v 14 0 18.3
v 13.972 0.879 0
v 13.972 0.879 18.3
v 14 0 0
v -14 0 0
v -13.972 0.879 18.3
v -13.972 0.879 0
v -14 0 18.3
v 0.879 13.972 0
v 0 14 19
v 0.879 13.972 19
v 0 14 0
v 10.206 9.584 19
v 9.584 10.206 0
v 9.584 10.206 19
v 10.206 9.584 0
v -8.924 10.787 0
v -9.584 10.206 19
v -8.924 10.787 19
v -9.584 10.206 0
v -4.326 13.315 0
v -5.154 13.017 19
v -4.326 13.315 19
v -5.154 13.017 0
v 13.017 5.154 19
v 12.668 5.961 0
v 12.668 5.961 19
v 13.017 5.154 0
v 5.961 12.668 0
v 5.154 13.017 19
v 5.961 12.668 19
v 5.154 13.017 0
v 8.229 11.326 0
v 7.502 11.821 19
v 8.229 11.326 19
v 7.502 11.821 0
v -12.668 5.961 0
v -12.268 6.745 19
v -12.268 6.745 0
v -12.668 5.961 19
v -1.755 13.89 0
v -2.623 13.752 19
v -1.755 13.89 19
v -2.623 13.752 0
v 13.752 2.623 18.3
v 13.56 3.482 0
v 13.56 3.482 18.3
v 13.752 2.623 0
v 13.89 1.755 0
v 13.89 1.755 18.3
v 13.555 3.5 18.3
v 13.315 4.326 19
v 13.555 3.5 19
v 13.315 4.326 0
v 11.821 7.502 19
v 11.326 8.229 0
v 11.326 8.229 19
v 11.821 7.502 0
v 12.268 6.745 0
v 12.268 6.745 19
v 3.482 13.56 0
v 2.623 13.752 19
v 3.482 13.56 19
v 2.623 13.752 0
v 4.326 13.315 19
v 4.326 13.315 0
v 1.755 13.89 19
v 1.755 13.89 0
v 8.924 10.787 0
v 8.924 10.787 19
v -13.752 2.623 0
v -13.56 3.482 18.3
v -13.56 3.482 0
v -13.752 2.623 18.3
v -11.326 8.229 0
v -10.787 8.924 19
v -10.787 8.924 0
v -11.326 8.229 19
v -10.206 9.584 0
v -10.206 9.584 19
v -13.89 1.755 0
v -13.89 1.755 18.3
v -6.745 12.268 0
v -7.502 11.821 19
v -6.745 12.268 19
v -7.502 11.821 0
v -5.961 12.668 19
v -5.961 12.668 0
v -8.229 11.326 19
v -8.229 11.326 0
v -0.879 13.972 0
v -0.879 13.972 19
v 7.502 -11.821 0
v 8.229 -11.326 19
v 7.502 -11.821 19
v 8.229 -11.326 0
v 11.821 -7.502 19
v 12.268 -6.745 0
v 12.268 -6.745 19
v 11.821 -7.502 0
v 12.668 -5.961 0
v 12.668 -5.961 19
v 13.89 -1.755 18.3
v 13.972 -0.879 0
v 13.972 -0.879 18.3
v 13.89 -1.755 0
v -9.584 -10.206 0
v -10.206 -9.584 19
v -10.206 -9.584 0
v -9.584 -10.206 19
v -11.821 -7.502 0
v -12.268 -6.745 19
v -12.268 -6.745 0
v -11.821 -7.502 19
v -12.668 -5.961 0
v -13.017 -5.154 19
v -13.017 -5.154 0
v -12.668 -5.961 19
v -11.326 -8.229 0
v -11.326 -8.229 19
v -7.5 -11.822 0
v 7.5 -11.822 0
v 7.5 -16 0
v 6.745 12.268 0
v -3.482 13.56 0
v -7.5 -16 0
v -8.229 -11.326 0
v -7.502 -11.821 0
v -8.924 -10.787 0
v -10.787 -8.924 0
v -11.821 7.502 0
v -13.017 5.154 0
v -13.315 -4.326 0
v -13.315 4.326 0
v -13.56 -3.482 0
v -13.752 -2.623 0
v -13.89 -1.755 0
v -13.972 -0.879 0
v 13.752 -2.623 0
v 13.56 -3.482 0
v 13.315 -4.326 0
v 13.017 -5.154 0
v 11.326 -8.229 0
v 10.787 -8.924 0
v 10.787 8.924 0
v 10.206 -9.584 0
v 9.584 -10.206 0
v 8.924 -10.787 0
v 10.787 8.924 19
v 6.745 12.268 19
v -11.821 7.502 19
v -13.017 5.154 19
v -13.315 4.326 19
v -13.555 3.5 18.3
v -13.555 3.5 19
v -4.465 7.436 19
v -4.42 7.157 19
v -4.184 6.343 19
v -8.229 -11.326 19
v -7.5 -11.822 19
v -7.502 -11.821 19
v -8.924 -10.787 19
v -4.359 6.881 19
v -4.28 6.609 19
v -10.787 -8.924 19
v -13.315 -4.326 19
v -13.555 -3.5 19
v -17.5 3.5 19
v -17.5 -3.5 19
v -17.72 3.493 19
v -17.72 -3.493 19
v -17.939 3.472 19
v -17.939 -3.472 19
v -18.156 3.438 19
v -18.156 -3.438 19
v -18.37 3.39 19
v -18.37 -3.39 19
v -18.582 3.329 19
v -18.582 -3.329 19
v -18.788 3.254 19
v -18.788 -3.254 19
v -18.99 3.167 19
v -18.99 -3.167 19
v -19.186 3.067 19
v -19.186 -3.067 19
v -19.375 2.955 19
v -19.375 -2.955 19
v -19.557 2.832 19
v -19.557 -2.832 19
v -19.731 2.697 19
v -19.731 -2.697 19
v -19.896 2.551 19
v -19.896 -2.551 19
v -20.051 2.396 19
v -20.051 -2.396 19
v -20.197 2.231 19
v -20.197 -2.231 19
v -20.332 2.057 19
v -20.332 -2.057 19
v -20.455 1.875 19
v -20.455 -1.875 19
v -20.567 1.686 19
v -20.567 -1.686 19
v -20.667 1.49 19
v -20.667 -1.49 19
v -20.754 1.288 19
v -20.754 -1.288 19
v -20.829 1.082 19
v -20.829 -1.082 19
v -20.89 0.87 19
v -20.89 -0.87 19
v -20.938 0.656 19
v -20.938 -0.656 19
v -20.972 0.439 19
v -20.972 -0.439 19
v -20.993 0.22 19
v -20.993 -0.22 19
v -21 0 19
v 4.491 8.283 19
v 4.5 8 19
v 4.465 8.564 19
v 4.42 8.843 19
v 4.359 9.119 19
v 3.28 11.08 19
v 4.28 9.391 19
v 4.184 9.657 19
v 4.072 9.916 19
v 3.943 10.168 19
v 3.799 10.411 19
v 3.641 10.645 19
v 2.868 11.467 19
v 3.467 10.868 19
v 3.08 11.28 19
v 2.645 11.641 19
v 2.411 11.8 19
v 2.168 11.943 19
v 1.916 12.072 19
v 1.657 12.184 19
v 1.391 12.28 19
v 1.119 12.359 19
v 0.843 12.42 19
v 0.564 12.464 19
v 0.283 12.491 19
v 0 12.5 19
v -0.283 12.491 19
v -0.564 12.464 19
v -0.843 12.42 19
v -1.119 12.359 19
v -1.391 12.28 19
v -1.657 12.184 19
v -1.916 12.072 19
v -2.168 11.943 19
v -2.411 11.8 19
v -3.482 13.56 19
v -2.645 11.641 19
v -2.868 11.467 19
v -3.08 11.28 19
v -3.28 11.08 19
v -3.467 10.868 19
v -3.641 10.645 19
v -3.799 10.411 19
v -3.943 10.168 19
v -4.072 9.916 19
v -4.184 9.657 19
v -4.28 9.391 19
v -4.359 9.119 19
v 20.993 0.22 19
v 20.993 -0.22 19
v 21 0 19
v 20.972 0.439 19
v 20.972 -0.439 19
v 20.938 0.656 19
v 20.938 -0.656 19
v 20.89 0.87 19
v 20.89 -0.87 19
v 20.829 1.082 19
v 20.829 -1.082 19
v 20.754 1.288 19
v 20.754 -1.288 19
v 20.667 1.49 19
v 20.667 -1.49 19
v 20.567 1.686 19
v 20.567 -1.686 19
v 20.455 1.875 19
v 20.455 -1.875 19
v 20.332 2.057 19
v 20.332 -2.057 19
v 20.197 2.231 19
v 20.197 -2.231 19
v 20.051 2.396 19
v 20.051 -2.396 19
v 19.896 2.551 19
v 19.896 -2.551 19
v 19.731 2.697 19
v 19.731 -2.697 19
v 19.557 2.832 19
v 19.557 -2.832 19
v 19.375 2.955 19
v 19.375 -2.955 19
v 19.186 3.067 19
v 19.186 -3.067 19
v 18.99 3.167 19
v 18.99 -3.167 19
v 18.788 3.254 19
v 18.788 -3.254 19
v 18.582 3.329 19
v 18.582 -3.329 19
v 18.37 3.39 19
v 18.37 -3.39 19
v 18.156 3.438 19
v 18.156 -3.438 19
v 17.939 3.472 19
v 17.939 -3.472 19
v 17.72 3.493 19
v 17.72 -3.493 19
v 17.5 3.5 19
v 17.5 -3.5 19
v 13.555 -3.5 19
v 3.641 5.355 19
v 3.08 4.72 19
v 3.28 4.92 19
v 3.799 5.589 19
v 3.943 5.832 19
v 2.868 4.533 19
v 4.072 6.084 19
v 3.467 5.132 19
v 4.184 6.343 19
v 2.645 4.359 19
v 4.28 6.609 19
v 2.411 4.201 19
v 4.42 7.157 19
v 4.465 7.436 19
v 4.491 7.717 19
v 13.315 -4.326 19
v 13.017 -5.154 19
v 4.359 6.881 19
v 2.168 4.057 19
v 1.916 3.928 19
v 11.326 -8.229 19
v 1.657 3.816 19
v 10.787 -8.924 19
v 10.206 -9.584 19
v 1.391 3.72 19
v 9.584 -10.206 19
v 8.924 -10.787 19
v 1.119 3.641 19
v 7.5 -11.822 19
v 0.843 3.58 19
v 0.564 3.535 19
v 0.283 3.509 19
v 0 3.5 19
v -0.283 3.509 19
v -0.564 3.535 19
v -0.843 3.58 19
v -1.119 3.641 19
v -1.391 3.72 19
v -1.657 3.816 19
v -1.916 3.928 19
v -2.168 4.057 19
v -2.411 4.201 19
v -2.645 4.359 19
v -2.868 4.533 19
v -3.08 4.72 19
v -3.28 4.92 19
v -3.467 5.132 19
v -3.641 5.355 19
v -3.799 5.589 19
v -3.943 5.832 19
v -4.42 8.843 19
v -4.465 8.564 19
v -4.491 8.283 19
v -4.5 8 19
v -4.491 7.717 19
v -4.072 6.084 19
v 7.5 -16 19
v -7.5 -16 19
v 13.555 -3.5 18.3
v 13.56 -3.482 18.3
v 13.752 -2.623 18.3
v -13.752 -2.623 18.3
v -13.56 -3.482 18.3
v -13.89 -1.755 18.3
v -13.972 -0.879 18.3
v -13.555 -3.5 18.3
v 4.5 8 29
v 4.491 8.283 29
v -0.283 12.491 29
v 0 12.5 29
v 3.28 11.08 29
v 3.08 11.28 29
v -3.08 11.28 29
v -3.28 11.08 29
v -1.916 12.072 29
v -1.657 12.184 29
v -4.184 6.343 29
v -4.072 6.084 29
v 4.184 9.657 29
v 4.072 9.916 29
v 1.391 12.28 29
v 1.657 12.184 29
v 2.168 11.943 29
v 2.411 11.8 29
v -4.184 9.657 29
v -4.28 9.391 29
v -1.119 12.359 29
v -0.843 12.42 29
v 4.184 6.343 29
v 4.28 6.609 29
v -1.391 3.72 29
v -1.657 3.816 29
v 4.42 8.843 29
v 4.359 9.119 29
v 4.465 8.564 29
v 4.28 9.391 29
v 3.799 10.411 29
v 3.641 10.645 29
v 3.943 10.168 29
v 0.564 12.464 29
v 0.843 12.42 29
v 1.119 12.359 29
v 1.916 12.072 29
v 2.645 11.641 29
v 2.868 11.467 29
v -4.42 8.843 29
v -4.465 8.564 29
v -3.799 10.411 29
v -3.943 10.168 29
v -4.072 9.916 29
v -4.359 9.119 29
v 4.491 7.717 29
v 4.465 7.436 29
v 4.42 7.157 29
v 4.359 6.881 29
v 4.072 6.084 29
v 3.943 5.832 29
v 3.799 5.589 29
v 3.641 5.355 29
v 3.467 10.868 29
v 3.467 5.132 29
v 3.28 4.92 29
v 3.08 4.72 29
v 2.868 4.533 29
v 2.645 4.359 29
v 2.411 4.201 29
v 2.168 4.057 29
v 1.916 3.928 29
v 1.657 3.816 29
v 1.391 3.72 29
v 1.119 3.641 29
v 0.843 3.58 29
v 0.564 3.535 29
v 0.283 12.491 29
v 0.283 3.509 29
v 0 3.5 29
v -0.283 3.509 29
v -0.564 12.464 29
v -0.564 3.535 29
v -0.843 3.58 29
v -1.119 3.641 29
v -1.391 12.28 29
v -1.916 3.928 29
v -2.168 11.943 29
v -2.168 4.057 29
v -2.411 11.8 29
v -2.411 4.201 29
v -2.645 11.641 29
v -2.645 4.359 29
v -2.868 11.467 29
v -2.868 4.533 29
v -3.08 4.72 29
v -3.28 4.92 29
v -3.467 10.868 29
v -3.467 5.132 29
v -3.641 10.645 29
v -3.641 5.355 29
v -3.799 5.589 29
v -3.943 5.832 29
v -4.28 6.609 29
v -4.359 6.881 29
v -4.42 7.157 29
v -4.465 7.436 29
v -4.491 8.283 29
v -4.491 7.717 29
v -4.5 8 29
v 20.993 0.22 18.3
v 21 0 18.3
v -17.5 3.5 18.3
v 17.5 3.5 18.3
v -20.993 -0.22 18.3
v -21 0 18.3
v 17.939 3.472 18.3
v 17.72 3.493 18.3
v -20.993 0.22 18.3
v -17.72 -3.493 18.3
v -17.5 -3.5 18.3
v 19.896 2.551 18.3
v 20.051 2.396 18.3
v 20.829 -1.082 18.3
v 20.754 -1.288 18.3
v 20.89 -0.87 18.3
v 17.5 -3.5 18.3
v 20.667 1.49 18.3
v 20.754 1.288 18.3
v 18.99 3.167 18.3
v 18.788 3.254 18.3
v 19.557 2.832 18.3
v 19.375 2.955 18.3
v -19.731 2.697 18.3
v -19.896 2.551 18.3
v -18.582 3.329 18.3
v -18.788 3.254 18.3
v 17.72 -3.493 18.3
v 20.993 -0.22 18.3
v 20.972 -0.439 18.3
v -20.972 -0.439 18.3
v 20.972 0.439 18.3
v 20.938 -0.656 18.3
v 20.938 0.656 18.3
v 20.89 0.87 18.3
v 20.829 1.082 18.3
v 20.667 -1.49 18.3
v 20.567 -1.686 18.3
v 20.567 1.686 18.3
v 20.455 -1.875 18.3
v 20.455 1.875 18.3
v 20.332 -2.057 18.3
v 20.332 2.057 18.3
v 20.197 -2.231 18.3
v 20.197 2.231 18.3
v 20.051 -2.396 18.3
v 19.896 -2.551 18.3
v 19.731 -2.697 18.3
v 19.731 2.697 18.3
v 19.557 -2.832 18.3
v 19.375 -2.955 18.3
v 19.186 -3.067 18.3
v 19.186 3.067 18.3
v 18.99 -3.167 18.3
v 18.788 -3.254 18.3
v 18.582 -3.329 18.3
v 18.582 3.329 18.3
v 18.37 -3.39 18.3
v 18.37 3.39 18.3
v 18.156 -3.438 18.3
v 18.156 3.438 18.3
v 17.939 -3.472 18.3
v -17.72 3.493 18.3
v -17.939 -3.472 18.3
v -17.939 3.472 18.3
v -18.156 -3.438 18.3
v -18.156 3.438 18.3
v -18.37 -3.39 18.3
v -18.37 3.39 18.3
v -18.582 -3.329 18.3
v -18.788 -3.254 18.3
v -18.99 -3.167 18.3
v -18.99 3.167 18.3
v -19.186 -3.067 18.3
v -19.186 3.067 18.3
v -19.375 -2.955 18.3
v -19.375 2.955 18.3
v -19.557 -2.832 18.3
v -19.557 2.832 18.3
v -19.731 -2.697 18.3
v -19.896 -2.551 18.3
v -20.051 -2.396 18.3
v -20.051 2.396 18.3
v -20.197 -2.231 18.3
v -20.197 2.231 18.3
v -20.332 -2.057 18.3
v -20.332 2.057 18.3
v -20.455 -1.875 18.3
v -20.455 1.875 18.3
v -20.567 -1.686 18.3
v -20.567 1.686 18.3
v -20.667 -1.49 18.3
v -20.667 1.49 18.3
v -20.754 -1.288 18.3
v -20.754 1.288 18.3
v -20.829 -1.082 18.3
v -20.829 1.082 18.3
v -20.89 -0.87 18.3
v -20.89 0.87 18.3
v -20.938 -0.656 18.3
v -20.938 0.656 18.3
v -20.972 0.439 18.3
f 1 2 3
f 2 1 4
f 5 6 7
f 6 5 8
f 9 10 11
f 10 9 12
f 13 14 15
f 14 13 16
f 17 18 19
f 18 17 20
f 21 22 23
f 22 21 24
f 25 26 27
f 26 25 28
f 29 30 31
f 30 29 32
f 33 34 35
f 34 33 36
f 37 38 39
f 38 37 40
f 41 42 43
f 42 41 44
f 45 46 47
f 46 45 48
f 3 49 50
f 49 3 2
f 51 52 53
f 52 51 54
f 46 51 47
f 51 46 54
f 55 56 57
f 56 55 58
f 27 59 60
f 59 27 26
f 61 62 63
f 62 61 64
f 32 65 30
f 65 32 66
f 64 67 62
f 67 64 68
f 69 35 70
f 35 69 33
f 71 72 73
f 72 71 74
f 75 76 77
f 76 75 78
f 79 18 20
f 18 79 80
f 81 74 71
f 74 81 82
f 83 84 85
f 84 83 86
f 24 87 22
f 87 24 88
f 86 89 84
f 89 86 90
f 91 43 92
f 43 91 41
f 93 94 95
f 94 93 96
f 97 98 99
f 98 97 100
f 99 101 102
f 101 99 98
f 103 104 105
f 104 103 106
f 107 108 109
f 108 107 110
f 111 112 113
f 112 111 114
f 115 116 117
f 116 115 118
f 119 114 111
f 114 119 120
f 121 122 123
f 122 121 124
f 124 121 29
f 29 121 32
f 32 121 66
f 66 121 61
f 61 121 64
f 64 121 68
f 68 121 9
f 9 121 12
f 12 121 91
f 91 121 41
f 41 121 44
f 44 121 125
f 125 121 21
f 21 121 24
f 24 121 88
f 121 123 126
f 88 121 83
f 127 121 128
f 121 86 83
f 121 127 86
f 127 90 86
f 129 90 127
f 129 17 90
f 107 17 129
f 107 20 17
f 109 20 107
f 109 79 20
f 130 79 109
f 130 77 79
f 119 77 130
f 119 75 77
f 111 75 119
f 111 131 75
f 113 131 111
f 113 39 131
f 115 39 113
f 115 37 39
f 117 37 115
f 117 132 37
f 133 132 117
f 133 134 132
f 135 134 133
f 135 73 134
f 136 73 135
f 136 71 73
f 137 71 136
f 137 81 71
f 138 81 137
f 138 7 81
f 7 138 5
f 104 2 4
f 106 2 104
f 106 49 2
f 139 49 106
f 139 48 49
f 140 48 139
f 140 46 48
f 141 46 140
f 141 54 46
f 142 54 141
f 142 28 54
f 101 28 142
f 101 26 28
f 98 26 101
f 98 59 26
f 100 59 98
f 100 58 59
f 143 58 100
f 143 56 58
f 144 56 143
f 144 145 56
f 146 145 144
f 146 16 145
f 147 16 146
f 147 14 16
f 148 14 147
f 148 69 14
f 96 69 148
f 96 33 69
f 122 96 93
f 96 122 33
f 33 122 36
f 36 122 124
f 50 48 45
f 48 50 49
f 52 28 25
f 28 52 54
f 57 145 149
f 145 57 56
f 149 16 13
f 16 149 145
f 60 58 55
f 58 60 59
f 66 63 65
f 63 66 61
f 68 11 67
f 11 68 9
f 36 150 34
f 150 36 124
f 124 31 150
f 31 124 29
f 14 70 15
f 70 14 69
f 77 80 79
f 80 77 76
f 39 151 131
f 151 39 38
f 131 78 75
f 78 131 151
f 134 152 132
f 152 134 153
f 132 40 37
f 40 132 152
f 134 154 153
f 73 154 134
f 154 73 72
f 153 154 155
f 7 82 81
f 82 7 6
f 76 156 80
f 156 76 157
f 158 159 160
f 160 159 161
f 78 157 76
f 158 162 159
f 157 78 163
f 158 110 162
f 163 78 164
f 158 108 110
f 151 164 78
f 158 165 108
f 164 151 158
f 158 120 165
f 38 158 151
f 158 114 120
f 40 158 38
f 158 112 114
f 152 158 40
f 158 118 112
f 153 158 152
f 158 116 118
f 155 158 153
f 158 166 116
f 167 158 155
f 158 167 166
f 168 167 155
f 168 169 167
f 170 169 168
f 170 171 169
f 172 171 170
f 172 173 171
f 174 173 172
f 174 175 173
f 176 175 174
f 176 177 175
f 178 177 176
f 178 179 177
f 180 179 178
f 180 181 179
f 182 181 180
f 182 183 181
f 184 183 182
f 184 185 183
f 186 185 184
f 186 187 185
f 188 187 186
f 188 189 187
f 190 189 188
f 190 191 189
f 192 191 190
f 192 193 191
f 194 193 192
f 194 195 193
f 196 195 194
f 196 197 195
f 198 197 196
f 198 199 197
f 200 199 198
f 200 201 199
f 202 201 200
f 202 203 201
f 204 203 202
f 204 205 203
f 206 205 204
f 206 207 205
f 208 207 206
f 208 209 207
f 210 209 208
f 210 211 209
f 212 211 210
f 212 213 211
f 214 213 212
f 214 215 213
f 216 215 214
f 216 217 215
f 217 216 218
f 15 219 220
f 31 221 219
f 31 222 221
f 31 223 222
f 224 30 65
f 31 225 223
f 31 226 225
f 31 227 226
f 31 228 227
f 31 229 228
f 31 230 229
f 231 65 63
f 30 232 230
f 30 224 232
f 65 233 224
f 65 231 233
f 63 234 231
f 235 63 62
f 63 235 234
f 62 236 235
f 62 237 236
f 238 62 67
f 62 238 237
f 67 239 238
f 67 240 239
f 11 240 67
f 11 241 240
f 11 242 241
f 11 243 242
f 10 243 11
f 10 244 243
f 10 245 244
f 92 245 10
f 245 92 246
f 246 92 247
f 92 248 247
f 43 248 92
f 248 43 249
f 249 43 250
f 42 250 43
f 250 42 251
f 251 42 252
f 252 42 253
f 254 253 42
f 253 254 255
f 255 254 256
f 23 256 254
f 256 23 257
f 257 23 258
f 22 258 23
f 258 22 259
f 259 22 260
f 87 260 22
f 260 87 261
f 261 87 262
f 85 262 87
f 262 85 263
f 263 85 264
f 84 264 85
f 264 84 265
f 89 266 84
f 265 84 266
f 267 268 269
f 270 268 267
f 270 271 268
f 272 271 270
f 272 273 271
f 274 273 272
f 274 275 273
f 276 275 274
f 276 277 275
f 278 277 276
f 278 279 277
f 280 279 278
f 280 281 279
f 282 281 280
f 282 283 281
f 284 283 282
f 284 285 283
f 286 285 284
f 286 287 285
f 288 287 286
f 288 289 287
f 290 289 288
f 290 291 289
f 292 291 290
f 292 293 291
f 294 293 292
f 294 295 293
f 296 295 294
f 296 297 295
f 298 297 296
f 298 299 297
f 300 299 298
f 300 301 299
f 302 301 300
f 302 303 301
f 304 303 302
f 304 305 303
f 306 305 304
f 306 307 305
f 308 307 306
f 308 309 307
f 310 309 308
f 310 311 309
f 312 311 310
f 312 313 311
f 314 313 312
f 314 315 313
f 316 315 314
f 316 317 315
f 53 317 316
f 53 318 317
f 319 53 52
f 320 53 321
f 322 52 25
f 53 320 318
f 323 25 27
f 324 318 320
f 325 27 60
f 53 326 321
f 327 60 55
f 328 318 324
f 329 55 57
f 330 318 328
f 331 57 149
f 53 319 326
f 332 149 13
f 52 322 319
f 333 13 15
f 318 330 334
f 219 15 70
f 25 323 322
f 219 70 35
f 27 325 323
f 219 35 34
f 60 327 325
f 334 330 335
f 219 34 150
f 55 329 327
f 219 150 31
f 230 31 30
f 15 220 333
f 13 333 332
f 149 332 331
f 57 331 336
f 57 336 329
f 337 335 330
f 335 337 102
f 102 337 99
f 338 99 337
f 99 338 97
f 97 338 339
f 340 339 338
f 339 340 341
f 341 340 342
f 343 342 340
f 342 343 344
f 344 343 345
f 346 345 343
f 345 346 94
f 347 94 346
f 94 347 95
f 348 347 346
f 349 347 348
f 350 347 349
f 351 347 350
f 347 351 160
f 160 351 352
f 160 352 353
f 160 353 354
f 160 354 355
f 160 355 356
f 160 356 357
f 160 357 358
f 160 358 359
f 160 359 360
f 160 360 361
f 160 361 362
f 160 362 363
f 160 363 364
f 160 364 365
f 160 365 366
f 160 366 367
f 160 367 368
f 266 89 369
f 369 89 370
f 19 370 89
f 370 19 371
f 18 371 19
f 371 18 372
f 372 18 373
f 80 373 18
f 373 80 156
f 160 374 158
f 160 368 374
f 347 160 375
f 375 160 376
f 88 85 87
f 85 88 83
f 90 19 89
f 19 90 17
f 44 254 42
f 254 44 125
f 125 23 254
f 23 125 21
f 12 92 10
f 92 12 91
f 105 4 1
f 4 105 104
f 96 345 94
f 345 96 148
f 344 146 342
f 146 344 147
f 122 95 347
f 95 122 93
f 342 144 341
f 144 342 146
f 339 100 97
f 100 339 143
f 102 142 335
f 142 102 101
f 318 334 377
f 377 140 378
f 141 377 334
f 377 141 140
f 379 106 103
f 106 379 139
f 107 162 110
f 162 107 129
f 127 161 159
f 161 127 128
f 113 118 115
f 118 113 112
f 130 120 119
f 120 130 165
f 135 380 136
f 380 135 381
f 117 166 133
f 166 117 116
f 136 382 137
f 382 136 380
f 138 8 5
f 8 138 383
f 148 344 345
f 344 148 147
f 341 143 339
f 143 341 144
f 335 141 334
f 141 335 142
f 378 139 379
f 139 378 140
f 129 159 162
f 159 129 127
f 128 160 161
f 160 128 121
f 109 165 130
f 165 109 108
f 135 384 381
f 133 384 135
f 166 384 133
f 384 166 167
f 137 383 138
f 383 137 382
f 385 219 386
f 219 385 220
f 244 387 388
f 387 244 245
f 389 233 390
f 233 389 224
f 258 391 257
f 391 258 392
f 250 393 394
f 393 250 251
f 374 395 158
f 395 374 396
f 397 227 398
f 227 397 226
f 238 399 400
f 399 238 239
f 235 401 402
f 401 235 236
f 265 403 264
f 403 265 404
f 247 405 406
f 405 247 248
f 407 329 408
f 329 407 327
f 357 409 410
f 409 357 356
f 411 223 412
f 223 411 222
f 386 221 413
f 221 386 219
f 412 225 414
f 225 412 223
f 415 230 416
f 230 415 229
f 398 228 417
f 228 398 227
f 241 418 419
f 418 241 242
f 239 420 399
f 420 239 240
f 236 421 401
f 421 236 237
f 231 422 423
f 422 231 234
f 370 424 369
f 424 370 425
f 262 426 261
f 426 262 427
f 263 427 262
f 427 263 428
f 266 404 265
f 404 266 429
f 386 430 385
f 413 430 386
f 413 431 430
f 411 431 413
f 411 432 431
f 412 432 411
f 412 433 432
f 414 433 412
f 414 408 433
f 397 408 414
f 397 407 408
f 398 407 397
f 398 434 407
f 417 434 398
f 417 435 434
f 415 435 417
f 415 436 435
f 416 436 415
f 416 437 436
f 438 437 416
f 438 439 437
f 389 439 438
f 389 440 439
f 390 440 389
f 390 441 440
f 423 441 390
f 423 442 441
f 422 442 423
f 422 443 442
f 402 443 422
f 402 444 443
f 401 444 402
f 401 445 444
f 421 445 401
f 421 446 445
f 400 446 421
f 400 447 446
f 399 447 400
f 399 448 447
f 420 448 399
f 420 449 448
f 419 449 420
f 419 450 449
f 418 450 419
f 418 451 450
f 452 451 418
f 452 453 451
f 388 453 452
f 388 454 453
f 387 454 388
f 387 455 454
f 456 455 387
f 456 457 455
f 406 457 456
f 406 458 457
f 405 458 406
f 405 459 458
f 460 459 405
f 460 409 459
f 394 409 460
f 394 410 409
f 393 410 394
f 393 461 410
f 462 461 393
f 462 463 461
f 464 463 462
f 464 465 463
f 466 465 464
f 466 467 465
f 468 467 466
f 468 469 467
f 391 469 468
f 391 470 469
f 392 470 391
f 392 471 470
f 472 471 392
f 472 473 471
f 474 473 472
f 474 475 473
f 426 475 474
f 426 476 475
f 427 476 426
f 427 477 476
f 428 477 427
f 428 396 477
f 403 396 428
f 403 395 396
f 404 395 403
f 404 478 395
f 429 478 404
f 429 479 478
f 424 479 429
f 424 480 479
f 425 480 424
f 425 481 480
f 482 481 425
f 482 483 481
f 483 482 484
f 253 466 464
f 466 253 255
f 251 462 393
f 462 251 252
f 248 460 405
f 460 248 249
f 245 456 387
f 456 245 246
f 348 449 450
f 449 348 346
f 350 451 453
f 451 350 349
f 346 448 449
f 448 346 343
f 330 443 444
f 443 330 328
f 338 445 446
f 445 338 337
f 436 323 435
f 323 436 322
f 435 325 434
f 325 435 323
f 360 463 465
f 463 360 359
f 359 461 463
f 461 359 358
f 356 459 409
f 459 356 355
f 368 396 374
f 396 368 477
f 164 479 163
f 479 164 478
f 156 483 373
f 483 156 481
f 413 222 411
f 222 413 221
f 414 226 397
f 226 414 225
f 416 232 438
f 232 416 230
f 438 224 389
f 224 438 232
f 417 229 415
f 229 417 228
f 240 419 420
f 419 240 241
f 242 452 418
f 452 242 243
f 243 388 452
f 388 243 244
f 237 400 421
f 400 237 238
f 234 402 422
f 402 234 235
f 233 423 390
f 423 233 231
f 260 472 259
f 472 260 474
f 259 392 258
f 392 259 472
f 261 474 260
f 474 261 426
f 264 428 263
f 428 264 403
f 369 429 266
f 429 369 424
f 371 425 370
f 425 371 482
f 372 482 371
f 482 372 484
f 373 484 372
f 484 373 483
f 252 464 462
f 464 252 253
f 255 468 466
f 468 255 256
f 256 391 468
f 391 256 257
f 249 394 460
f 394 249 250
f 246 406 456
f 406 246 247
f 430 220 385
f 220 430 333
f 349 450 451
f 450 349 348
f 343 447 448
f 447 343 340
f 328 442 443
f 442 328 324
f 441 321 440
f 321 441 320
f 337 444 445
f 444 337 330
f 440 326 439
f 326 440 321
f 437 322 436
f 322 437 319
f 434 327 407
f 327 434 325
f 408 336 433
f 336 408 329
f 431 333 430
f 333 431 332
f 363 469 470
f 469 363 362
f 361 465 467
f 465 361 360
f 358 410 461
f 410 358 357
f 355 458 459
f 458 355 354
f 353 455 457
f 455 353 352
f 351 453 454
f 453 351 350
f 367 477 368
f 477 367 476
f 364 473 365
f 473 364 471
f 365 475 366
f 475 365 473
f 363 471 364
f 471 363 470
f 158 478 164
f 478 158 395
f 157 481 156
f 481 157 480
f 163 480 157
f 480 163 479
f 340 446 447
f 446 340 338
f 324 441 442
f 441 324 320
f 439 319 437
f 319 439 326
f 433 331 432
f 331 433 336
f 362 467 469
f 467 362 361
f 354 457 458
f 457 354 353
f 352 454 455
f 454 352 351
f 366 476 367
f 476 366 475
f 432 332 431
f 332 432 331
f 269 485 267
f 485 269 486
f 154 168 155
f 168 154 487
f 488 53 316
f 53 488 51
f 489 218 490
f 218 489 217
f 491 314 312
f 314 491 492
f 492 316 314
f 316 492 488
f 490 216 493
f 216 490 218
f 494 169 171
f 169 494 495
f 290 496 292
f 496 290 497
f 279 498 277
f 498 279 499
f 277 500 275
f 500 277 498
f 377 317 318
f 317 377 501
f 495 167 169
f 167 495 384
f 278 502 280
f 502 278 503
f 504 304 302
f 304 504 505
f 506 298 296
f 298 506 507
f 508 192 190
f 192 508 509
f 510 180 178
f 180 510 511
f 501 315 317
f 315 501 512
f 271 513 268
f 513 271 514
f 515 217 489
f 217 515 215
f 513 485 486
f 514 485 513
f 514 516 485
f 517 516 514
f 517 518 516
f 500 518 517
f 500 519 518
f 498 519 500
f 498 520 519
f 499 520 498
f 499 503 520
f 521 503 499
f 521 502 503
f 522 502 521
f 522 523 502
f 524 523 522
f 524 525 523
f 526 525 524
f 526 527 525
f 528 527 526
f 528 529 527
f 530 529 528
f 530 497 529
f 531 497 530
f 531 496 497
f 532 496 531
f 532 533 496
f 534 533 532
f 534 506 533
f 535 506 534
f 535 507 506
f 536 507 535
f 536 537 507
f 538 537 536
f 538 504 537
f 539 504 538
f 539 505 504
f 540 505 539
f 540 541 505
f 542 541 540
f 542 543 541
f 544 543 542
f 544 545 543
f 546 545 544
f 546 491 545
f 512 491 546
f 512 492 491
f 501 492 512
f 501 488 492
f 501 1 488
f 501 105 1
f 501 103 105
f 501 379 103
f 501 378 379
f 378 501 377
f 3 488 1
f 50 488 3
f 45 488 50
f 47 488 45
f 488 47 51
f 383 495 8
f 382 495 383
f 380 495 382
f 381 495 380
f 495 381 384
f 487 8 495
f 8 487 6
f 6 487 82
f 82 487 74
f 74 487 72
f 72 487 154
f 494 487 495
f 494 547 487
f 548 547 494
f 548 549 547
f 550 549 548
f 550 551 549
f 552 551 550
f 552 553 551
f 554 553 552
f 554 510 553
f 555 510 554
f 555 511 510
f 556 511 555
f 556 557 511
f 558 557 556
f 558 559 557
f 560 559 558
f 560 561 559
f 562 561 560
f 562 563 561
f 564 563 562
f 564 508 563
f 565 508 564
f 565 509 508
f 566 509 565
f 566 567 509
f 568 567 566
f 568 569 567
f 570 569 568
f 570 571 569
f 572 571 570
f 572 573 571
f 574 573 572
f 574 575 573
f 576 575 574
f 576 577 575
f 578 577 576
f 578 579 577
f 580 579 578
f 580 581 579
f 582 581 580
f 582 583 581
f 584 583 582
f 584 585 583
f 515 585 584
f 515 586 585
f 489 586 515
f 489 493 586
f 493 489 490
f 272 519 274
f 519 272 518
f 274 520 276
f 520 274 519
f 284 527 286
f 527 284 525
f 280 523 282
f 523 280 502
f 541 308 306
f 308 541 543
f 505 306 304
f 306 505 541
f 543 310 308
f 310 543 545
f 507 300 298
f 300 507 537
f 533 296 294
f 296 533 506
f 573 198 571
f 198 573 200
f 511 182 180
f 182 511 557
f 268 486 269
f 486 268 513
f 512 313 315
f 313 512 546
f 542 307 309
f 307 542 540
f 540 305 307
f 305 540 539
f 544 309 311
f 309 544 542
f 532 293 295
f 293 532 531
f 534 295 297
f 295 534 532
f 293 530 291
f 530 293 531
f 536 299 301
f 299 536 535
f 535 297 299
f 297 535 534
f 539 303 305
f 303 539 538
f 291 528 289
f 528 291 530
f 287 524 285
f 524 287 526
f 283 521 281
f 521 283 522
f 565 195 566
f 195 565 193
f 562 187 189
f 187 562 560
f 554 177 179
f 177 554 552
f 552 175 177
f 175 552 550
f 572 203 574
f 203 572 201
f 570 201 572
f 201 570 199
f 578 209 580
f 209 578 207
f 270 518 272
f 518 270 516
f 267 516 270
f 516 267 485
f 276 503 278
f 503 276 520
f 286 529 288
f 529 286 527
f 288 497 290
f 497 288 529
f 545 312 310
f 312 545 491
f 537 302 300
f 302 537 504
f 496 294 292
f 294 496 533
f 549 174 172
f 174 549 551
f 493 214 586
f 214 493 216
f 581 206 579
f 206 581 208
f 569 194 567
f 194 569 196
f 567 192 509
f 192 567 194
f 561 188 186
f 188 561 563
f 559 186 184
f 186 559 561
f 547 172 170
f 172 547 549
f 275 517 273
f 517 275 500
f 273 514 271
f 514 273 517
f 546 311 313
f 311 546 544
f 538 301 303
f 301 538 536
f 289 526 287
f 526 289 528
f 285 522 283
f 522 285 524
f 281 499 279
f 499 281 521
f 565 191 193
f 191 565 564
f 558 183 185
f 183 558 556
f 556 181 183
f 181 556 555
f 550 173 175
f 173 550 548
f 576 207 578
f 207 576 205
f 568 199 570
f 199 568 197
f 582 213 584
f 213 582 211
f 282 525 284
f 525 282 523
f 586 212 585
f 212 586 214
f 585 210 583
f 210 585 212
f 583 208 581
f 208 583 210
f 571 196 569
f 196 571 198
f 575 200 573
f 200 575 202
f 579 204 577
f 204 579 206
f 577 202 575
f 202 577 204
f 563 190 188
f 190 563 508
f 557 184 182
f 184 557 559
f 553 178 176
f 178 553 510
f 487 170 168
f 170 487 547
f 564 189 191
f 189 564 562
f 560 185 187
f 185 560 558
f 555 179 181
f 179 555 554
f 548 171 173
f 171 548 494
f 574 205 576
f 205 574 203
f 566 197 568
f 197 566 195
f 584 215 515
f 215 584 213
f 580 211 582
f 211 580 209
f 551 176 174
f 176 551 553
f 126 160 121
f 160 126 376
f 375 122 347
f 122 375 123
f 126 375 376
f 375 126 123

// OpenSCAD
$fn = 100;

union(){
    cylinder(r=14,h=19);
    translate([0,8,19]) cylinder(r=4.5,h=10);
    hull(){
        translate([17.5,0,18.3]) cylinder(r=3.5,h=0.7);
        mirror([1,0,0]) translate([17.5,0,18.3]) cylinder(r=3.5,h=0.7);
          }
         translate([-7.5,-16,0]) cube([15,5,19]);
}
